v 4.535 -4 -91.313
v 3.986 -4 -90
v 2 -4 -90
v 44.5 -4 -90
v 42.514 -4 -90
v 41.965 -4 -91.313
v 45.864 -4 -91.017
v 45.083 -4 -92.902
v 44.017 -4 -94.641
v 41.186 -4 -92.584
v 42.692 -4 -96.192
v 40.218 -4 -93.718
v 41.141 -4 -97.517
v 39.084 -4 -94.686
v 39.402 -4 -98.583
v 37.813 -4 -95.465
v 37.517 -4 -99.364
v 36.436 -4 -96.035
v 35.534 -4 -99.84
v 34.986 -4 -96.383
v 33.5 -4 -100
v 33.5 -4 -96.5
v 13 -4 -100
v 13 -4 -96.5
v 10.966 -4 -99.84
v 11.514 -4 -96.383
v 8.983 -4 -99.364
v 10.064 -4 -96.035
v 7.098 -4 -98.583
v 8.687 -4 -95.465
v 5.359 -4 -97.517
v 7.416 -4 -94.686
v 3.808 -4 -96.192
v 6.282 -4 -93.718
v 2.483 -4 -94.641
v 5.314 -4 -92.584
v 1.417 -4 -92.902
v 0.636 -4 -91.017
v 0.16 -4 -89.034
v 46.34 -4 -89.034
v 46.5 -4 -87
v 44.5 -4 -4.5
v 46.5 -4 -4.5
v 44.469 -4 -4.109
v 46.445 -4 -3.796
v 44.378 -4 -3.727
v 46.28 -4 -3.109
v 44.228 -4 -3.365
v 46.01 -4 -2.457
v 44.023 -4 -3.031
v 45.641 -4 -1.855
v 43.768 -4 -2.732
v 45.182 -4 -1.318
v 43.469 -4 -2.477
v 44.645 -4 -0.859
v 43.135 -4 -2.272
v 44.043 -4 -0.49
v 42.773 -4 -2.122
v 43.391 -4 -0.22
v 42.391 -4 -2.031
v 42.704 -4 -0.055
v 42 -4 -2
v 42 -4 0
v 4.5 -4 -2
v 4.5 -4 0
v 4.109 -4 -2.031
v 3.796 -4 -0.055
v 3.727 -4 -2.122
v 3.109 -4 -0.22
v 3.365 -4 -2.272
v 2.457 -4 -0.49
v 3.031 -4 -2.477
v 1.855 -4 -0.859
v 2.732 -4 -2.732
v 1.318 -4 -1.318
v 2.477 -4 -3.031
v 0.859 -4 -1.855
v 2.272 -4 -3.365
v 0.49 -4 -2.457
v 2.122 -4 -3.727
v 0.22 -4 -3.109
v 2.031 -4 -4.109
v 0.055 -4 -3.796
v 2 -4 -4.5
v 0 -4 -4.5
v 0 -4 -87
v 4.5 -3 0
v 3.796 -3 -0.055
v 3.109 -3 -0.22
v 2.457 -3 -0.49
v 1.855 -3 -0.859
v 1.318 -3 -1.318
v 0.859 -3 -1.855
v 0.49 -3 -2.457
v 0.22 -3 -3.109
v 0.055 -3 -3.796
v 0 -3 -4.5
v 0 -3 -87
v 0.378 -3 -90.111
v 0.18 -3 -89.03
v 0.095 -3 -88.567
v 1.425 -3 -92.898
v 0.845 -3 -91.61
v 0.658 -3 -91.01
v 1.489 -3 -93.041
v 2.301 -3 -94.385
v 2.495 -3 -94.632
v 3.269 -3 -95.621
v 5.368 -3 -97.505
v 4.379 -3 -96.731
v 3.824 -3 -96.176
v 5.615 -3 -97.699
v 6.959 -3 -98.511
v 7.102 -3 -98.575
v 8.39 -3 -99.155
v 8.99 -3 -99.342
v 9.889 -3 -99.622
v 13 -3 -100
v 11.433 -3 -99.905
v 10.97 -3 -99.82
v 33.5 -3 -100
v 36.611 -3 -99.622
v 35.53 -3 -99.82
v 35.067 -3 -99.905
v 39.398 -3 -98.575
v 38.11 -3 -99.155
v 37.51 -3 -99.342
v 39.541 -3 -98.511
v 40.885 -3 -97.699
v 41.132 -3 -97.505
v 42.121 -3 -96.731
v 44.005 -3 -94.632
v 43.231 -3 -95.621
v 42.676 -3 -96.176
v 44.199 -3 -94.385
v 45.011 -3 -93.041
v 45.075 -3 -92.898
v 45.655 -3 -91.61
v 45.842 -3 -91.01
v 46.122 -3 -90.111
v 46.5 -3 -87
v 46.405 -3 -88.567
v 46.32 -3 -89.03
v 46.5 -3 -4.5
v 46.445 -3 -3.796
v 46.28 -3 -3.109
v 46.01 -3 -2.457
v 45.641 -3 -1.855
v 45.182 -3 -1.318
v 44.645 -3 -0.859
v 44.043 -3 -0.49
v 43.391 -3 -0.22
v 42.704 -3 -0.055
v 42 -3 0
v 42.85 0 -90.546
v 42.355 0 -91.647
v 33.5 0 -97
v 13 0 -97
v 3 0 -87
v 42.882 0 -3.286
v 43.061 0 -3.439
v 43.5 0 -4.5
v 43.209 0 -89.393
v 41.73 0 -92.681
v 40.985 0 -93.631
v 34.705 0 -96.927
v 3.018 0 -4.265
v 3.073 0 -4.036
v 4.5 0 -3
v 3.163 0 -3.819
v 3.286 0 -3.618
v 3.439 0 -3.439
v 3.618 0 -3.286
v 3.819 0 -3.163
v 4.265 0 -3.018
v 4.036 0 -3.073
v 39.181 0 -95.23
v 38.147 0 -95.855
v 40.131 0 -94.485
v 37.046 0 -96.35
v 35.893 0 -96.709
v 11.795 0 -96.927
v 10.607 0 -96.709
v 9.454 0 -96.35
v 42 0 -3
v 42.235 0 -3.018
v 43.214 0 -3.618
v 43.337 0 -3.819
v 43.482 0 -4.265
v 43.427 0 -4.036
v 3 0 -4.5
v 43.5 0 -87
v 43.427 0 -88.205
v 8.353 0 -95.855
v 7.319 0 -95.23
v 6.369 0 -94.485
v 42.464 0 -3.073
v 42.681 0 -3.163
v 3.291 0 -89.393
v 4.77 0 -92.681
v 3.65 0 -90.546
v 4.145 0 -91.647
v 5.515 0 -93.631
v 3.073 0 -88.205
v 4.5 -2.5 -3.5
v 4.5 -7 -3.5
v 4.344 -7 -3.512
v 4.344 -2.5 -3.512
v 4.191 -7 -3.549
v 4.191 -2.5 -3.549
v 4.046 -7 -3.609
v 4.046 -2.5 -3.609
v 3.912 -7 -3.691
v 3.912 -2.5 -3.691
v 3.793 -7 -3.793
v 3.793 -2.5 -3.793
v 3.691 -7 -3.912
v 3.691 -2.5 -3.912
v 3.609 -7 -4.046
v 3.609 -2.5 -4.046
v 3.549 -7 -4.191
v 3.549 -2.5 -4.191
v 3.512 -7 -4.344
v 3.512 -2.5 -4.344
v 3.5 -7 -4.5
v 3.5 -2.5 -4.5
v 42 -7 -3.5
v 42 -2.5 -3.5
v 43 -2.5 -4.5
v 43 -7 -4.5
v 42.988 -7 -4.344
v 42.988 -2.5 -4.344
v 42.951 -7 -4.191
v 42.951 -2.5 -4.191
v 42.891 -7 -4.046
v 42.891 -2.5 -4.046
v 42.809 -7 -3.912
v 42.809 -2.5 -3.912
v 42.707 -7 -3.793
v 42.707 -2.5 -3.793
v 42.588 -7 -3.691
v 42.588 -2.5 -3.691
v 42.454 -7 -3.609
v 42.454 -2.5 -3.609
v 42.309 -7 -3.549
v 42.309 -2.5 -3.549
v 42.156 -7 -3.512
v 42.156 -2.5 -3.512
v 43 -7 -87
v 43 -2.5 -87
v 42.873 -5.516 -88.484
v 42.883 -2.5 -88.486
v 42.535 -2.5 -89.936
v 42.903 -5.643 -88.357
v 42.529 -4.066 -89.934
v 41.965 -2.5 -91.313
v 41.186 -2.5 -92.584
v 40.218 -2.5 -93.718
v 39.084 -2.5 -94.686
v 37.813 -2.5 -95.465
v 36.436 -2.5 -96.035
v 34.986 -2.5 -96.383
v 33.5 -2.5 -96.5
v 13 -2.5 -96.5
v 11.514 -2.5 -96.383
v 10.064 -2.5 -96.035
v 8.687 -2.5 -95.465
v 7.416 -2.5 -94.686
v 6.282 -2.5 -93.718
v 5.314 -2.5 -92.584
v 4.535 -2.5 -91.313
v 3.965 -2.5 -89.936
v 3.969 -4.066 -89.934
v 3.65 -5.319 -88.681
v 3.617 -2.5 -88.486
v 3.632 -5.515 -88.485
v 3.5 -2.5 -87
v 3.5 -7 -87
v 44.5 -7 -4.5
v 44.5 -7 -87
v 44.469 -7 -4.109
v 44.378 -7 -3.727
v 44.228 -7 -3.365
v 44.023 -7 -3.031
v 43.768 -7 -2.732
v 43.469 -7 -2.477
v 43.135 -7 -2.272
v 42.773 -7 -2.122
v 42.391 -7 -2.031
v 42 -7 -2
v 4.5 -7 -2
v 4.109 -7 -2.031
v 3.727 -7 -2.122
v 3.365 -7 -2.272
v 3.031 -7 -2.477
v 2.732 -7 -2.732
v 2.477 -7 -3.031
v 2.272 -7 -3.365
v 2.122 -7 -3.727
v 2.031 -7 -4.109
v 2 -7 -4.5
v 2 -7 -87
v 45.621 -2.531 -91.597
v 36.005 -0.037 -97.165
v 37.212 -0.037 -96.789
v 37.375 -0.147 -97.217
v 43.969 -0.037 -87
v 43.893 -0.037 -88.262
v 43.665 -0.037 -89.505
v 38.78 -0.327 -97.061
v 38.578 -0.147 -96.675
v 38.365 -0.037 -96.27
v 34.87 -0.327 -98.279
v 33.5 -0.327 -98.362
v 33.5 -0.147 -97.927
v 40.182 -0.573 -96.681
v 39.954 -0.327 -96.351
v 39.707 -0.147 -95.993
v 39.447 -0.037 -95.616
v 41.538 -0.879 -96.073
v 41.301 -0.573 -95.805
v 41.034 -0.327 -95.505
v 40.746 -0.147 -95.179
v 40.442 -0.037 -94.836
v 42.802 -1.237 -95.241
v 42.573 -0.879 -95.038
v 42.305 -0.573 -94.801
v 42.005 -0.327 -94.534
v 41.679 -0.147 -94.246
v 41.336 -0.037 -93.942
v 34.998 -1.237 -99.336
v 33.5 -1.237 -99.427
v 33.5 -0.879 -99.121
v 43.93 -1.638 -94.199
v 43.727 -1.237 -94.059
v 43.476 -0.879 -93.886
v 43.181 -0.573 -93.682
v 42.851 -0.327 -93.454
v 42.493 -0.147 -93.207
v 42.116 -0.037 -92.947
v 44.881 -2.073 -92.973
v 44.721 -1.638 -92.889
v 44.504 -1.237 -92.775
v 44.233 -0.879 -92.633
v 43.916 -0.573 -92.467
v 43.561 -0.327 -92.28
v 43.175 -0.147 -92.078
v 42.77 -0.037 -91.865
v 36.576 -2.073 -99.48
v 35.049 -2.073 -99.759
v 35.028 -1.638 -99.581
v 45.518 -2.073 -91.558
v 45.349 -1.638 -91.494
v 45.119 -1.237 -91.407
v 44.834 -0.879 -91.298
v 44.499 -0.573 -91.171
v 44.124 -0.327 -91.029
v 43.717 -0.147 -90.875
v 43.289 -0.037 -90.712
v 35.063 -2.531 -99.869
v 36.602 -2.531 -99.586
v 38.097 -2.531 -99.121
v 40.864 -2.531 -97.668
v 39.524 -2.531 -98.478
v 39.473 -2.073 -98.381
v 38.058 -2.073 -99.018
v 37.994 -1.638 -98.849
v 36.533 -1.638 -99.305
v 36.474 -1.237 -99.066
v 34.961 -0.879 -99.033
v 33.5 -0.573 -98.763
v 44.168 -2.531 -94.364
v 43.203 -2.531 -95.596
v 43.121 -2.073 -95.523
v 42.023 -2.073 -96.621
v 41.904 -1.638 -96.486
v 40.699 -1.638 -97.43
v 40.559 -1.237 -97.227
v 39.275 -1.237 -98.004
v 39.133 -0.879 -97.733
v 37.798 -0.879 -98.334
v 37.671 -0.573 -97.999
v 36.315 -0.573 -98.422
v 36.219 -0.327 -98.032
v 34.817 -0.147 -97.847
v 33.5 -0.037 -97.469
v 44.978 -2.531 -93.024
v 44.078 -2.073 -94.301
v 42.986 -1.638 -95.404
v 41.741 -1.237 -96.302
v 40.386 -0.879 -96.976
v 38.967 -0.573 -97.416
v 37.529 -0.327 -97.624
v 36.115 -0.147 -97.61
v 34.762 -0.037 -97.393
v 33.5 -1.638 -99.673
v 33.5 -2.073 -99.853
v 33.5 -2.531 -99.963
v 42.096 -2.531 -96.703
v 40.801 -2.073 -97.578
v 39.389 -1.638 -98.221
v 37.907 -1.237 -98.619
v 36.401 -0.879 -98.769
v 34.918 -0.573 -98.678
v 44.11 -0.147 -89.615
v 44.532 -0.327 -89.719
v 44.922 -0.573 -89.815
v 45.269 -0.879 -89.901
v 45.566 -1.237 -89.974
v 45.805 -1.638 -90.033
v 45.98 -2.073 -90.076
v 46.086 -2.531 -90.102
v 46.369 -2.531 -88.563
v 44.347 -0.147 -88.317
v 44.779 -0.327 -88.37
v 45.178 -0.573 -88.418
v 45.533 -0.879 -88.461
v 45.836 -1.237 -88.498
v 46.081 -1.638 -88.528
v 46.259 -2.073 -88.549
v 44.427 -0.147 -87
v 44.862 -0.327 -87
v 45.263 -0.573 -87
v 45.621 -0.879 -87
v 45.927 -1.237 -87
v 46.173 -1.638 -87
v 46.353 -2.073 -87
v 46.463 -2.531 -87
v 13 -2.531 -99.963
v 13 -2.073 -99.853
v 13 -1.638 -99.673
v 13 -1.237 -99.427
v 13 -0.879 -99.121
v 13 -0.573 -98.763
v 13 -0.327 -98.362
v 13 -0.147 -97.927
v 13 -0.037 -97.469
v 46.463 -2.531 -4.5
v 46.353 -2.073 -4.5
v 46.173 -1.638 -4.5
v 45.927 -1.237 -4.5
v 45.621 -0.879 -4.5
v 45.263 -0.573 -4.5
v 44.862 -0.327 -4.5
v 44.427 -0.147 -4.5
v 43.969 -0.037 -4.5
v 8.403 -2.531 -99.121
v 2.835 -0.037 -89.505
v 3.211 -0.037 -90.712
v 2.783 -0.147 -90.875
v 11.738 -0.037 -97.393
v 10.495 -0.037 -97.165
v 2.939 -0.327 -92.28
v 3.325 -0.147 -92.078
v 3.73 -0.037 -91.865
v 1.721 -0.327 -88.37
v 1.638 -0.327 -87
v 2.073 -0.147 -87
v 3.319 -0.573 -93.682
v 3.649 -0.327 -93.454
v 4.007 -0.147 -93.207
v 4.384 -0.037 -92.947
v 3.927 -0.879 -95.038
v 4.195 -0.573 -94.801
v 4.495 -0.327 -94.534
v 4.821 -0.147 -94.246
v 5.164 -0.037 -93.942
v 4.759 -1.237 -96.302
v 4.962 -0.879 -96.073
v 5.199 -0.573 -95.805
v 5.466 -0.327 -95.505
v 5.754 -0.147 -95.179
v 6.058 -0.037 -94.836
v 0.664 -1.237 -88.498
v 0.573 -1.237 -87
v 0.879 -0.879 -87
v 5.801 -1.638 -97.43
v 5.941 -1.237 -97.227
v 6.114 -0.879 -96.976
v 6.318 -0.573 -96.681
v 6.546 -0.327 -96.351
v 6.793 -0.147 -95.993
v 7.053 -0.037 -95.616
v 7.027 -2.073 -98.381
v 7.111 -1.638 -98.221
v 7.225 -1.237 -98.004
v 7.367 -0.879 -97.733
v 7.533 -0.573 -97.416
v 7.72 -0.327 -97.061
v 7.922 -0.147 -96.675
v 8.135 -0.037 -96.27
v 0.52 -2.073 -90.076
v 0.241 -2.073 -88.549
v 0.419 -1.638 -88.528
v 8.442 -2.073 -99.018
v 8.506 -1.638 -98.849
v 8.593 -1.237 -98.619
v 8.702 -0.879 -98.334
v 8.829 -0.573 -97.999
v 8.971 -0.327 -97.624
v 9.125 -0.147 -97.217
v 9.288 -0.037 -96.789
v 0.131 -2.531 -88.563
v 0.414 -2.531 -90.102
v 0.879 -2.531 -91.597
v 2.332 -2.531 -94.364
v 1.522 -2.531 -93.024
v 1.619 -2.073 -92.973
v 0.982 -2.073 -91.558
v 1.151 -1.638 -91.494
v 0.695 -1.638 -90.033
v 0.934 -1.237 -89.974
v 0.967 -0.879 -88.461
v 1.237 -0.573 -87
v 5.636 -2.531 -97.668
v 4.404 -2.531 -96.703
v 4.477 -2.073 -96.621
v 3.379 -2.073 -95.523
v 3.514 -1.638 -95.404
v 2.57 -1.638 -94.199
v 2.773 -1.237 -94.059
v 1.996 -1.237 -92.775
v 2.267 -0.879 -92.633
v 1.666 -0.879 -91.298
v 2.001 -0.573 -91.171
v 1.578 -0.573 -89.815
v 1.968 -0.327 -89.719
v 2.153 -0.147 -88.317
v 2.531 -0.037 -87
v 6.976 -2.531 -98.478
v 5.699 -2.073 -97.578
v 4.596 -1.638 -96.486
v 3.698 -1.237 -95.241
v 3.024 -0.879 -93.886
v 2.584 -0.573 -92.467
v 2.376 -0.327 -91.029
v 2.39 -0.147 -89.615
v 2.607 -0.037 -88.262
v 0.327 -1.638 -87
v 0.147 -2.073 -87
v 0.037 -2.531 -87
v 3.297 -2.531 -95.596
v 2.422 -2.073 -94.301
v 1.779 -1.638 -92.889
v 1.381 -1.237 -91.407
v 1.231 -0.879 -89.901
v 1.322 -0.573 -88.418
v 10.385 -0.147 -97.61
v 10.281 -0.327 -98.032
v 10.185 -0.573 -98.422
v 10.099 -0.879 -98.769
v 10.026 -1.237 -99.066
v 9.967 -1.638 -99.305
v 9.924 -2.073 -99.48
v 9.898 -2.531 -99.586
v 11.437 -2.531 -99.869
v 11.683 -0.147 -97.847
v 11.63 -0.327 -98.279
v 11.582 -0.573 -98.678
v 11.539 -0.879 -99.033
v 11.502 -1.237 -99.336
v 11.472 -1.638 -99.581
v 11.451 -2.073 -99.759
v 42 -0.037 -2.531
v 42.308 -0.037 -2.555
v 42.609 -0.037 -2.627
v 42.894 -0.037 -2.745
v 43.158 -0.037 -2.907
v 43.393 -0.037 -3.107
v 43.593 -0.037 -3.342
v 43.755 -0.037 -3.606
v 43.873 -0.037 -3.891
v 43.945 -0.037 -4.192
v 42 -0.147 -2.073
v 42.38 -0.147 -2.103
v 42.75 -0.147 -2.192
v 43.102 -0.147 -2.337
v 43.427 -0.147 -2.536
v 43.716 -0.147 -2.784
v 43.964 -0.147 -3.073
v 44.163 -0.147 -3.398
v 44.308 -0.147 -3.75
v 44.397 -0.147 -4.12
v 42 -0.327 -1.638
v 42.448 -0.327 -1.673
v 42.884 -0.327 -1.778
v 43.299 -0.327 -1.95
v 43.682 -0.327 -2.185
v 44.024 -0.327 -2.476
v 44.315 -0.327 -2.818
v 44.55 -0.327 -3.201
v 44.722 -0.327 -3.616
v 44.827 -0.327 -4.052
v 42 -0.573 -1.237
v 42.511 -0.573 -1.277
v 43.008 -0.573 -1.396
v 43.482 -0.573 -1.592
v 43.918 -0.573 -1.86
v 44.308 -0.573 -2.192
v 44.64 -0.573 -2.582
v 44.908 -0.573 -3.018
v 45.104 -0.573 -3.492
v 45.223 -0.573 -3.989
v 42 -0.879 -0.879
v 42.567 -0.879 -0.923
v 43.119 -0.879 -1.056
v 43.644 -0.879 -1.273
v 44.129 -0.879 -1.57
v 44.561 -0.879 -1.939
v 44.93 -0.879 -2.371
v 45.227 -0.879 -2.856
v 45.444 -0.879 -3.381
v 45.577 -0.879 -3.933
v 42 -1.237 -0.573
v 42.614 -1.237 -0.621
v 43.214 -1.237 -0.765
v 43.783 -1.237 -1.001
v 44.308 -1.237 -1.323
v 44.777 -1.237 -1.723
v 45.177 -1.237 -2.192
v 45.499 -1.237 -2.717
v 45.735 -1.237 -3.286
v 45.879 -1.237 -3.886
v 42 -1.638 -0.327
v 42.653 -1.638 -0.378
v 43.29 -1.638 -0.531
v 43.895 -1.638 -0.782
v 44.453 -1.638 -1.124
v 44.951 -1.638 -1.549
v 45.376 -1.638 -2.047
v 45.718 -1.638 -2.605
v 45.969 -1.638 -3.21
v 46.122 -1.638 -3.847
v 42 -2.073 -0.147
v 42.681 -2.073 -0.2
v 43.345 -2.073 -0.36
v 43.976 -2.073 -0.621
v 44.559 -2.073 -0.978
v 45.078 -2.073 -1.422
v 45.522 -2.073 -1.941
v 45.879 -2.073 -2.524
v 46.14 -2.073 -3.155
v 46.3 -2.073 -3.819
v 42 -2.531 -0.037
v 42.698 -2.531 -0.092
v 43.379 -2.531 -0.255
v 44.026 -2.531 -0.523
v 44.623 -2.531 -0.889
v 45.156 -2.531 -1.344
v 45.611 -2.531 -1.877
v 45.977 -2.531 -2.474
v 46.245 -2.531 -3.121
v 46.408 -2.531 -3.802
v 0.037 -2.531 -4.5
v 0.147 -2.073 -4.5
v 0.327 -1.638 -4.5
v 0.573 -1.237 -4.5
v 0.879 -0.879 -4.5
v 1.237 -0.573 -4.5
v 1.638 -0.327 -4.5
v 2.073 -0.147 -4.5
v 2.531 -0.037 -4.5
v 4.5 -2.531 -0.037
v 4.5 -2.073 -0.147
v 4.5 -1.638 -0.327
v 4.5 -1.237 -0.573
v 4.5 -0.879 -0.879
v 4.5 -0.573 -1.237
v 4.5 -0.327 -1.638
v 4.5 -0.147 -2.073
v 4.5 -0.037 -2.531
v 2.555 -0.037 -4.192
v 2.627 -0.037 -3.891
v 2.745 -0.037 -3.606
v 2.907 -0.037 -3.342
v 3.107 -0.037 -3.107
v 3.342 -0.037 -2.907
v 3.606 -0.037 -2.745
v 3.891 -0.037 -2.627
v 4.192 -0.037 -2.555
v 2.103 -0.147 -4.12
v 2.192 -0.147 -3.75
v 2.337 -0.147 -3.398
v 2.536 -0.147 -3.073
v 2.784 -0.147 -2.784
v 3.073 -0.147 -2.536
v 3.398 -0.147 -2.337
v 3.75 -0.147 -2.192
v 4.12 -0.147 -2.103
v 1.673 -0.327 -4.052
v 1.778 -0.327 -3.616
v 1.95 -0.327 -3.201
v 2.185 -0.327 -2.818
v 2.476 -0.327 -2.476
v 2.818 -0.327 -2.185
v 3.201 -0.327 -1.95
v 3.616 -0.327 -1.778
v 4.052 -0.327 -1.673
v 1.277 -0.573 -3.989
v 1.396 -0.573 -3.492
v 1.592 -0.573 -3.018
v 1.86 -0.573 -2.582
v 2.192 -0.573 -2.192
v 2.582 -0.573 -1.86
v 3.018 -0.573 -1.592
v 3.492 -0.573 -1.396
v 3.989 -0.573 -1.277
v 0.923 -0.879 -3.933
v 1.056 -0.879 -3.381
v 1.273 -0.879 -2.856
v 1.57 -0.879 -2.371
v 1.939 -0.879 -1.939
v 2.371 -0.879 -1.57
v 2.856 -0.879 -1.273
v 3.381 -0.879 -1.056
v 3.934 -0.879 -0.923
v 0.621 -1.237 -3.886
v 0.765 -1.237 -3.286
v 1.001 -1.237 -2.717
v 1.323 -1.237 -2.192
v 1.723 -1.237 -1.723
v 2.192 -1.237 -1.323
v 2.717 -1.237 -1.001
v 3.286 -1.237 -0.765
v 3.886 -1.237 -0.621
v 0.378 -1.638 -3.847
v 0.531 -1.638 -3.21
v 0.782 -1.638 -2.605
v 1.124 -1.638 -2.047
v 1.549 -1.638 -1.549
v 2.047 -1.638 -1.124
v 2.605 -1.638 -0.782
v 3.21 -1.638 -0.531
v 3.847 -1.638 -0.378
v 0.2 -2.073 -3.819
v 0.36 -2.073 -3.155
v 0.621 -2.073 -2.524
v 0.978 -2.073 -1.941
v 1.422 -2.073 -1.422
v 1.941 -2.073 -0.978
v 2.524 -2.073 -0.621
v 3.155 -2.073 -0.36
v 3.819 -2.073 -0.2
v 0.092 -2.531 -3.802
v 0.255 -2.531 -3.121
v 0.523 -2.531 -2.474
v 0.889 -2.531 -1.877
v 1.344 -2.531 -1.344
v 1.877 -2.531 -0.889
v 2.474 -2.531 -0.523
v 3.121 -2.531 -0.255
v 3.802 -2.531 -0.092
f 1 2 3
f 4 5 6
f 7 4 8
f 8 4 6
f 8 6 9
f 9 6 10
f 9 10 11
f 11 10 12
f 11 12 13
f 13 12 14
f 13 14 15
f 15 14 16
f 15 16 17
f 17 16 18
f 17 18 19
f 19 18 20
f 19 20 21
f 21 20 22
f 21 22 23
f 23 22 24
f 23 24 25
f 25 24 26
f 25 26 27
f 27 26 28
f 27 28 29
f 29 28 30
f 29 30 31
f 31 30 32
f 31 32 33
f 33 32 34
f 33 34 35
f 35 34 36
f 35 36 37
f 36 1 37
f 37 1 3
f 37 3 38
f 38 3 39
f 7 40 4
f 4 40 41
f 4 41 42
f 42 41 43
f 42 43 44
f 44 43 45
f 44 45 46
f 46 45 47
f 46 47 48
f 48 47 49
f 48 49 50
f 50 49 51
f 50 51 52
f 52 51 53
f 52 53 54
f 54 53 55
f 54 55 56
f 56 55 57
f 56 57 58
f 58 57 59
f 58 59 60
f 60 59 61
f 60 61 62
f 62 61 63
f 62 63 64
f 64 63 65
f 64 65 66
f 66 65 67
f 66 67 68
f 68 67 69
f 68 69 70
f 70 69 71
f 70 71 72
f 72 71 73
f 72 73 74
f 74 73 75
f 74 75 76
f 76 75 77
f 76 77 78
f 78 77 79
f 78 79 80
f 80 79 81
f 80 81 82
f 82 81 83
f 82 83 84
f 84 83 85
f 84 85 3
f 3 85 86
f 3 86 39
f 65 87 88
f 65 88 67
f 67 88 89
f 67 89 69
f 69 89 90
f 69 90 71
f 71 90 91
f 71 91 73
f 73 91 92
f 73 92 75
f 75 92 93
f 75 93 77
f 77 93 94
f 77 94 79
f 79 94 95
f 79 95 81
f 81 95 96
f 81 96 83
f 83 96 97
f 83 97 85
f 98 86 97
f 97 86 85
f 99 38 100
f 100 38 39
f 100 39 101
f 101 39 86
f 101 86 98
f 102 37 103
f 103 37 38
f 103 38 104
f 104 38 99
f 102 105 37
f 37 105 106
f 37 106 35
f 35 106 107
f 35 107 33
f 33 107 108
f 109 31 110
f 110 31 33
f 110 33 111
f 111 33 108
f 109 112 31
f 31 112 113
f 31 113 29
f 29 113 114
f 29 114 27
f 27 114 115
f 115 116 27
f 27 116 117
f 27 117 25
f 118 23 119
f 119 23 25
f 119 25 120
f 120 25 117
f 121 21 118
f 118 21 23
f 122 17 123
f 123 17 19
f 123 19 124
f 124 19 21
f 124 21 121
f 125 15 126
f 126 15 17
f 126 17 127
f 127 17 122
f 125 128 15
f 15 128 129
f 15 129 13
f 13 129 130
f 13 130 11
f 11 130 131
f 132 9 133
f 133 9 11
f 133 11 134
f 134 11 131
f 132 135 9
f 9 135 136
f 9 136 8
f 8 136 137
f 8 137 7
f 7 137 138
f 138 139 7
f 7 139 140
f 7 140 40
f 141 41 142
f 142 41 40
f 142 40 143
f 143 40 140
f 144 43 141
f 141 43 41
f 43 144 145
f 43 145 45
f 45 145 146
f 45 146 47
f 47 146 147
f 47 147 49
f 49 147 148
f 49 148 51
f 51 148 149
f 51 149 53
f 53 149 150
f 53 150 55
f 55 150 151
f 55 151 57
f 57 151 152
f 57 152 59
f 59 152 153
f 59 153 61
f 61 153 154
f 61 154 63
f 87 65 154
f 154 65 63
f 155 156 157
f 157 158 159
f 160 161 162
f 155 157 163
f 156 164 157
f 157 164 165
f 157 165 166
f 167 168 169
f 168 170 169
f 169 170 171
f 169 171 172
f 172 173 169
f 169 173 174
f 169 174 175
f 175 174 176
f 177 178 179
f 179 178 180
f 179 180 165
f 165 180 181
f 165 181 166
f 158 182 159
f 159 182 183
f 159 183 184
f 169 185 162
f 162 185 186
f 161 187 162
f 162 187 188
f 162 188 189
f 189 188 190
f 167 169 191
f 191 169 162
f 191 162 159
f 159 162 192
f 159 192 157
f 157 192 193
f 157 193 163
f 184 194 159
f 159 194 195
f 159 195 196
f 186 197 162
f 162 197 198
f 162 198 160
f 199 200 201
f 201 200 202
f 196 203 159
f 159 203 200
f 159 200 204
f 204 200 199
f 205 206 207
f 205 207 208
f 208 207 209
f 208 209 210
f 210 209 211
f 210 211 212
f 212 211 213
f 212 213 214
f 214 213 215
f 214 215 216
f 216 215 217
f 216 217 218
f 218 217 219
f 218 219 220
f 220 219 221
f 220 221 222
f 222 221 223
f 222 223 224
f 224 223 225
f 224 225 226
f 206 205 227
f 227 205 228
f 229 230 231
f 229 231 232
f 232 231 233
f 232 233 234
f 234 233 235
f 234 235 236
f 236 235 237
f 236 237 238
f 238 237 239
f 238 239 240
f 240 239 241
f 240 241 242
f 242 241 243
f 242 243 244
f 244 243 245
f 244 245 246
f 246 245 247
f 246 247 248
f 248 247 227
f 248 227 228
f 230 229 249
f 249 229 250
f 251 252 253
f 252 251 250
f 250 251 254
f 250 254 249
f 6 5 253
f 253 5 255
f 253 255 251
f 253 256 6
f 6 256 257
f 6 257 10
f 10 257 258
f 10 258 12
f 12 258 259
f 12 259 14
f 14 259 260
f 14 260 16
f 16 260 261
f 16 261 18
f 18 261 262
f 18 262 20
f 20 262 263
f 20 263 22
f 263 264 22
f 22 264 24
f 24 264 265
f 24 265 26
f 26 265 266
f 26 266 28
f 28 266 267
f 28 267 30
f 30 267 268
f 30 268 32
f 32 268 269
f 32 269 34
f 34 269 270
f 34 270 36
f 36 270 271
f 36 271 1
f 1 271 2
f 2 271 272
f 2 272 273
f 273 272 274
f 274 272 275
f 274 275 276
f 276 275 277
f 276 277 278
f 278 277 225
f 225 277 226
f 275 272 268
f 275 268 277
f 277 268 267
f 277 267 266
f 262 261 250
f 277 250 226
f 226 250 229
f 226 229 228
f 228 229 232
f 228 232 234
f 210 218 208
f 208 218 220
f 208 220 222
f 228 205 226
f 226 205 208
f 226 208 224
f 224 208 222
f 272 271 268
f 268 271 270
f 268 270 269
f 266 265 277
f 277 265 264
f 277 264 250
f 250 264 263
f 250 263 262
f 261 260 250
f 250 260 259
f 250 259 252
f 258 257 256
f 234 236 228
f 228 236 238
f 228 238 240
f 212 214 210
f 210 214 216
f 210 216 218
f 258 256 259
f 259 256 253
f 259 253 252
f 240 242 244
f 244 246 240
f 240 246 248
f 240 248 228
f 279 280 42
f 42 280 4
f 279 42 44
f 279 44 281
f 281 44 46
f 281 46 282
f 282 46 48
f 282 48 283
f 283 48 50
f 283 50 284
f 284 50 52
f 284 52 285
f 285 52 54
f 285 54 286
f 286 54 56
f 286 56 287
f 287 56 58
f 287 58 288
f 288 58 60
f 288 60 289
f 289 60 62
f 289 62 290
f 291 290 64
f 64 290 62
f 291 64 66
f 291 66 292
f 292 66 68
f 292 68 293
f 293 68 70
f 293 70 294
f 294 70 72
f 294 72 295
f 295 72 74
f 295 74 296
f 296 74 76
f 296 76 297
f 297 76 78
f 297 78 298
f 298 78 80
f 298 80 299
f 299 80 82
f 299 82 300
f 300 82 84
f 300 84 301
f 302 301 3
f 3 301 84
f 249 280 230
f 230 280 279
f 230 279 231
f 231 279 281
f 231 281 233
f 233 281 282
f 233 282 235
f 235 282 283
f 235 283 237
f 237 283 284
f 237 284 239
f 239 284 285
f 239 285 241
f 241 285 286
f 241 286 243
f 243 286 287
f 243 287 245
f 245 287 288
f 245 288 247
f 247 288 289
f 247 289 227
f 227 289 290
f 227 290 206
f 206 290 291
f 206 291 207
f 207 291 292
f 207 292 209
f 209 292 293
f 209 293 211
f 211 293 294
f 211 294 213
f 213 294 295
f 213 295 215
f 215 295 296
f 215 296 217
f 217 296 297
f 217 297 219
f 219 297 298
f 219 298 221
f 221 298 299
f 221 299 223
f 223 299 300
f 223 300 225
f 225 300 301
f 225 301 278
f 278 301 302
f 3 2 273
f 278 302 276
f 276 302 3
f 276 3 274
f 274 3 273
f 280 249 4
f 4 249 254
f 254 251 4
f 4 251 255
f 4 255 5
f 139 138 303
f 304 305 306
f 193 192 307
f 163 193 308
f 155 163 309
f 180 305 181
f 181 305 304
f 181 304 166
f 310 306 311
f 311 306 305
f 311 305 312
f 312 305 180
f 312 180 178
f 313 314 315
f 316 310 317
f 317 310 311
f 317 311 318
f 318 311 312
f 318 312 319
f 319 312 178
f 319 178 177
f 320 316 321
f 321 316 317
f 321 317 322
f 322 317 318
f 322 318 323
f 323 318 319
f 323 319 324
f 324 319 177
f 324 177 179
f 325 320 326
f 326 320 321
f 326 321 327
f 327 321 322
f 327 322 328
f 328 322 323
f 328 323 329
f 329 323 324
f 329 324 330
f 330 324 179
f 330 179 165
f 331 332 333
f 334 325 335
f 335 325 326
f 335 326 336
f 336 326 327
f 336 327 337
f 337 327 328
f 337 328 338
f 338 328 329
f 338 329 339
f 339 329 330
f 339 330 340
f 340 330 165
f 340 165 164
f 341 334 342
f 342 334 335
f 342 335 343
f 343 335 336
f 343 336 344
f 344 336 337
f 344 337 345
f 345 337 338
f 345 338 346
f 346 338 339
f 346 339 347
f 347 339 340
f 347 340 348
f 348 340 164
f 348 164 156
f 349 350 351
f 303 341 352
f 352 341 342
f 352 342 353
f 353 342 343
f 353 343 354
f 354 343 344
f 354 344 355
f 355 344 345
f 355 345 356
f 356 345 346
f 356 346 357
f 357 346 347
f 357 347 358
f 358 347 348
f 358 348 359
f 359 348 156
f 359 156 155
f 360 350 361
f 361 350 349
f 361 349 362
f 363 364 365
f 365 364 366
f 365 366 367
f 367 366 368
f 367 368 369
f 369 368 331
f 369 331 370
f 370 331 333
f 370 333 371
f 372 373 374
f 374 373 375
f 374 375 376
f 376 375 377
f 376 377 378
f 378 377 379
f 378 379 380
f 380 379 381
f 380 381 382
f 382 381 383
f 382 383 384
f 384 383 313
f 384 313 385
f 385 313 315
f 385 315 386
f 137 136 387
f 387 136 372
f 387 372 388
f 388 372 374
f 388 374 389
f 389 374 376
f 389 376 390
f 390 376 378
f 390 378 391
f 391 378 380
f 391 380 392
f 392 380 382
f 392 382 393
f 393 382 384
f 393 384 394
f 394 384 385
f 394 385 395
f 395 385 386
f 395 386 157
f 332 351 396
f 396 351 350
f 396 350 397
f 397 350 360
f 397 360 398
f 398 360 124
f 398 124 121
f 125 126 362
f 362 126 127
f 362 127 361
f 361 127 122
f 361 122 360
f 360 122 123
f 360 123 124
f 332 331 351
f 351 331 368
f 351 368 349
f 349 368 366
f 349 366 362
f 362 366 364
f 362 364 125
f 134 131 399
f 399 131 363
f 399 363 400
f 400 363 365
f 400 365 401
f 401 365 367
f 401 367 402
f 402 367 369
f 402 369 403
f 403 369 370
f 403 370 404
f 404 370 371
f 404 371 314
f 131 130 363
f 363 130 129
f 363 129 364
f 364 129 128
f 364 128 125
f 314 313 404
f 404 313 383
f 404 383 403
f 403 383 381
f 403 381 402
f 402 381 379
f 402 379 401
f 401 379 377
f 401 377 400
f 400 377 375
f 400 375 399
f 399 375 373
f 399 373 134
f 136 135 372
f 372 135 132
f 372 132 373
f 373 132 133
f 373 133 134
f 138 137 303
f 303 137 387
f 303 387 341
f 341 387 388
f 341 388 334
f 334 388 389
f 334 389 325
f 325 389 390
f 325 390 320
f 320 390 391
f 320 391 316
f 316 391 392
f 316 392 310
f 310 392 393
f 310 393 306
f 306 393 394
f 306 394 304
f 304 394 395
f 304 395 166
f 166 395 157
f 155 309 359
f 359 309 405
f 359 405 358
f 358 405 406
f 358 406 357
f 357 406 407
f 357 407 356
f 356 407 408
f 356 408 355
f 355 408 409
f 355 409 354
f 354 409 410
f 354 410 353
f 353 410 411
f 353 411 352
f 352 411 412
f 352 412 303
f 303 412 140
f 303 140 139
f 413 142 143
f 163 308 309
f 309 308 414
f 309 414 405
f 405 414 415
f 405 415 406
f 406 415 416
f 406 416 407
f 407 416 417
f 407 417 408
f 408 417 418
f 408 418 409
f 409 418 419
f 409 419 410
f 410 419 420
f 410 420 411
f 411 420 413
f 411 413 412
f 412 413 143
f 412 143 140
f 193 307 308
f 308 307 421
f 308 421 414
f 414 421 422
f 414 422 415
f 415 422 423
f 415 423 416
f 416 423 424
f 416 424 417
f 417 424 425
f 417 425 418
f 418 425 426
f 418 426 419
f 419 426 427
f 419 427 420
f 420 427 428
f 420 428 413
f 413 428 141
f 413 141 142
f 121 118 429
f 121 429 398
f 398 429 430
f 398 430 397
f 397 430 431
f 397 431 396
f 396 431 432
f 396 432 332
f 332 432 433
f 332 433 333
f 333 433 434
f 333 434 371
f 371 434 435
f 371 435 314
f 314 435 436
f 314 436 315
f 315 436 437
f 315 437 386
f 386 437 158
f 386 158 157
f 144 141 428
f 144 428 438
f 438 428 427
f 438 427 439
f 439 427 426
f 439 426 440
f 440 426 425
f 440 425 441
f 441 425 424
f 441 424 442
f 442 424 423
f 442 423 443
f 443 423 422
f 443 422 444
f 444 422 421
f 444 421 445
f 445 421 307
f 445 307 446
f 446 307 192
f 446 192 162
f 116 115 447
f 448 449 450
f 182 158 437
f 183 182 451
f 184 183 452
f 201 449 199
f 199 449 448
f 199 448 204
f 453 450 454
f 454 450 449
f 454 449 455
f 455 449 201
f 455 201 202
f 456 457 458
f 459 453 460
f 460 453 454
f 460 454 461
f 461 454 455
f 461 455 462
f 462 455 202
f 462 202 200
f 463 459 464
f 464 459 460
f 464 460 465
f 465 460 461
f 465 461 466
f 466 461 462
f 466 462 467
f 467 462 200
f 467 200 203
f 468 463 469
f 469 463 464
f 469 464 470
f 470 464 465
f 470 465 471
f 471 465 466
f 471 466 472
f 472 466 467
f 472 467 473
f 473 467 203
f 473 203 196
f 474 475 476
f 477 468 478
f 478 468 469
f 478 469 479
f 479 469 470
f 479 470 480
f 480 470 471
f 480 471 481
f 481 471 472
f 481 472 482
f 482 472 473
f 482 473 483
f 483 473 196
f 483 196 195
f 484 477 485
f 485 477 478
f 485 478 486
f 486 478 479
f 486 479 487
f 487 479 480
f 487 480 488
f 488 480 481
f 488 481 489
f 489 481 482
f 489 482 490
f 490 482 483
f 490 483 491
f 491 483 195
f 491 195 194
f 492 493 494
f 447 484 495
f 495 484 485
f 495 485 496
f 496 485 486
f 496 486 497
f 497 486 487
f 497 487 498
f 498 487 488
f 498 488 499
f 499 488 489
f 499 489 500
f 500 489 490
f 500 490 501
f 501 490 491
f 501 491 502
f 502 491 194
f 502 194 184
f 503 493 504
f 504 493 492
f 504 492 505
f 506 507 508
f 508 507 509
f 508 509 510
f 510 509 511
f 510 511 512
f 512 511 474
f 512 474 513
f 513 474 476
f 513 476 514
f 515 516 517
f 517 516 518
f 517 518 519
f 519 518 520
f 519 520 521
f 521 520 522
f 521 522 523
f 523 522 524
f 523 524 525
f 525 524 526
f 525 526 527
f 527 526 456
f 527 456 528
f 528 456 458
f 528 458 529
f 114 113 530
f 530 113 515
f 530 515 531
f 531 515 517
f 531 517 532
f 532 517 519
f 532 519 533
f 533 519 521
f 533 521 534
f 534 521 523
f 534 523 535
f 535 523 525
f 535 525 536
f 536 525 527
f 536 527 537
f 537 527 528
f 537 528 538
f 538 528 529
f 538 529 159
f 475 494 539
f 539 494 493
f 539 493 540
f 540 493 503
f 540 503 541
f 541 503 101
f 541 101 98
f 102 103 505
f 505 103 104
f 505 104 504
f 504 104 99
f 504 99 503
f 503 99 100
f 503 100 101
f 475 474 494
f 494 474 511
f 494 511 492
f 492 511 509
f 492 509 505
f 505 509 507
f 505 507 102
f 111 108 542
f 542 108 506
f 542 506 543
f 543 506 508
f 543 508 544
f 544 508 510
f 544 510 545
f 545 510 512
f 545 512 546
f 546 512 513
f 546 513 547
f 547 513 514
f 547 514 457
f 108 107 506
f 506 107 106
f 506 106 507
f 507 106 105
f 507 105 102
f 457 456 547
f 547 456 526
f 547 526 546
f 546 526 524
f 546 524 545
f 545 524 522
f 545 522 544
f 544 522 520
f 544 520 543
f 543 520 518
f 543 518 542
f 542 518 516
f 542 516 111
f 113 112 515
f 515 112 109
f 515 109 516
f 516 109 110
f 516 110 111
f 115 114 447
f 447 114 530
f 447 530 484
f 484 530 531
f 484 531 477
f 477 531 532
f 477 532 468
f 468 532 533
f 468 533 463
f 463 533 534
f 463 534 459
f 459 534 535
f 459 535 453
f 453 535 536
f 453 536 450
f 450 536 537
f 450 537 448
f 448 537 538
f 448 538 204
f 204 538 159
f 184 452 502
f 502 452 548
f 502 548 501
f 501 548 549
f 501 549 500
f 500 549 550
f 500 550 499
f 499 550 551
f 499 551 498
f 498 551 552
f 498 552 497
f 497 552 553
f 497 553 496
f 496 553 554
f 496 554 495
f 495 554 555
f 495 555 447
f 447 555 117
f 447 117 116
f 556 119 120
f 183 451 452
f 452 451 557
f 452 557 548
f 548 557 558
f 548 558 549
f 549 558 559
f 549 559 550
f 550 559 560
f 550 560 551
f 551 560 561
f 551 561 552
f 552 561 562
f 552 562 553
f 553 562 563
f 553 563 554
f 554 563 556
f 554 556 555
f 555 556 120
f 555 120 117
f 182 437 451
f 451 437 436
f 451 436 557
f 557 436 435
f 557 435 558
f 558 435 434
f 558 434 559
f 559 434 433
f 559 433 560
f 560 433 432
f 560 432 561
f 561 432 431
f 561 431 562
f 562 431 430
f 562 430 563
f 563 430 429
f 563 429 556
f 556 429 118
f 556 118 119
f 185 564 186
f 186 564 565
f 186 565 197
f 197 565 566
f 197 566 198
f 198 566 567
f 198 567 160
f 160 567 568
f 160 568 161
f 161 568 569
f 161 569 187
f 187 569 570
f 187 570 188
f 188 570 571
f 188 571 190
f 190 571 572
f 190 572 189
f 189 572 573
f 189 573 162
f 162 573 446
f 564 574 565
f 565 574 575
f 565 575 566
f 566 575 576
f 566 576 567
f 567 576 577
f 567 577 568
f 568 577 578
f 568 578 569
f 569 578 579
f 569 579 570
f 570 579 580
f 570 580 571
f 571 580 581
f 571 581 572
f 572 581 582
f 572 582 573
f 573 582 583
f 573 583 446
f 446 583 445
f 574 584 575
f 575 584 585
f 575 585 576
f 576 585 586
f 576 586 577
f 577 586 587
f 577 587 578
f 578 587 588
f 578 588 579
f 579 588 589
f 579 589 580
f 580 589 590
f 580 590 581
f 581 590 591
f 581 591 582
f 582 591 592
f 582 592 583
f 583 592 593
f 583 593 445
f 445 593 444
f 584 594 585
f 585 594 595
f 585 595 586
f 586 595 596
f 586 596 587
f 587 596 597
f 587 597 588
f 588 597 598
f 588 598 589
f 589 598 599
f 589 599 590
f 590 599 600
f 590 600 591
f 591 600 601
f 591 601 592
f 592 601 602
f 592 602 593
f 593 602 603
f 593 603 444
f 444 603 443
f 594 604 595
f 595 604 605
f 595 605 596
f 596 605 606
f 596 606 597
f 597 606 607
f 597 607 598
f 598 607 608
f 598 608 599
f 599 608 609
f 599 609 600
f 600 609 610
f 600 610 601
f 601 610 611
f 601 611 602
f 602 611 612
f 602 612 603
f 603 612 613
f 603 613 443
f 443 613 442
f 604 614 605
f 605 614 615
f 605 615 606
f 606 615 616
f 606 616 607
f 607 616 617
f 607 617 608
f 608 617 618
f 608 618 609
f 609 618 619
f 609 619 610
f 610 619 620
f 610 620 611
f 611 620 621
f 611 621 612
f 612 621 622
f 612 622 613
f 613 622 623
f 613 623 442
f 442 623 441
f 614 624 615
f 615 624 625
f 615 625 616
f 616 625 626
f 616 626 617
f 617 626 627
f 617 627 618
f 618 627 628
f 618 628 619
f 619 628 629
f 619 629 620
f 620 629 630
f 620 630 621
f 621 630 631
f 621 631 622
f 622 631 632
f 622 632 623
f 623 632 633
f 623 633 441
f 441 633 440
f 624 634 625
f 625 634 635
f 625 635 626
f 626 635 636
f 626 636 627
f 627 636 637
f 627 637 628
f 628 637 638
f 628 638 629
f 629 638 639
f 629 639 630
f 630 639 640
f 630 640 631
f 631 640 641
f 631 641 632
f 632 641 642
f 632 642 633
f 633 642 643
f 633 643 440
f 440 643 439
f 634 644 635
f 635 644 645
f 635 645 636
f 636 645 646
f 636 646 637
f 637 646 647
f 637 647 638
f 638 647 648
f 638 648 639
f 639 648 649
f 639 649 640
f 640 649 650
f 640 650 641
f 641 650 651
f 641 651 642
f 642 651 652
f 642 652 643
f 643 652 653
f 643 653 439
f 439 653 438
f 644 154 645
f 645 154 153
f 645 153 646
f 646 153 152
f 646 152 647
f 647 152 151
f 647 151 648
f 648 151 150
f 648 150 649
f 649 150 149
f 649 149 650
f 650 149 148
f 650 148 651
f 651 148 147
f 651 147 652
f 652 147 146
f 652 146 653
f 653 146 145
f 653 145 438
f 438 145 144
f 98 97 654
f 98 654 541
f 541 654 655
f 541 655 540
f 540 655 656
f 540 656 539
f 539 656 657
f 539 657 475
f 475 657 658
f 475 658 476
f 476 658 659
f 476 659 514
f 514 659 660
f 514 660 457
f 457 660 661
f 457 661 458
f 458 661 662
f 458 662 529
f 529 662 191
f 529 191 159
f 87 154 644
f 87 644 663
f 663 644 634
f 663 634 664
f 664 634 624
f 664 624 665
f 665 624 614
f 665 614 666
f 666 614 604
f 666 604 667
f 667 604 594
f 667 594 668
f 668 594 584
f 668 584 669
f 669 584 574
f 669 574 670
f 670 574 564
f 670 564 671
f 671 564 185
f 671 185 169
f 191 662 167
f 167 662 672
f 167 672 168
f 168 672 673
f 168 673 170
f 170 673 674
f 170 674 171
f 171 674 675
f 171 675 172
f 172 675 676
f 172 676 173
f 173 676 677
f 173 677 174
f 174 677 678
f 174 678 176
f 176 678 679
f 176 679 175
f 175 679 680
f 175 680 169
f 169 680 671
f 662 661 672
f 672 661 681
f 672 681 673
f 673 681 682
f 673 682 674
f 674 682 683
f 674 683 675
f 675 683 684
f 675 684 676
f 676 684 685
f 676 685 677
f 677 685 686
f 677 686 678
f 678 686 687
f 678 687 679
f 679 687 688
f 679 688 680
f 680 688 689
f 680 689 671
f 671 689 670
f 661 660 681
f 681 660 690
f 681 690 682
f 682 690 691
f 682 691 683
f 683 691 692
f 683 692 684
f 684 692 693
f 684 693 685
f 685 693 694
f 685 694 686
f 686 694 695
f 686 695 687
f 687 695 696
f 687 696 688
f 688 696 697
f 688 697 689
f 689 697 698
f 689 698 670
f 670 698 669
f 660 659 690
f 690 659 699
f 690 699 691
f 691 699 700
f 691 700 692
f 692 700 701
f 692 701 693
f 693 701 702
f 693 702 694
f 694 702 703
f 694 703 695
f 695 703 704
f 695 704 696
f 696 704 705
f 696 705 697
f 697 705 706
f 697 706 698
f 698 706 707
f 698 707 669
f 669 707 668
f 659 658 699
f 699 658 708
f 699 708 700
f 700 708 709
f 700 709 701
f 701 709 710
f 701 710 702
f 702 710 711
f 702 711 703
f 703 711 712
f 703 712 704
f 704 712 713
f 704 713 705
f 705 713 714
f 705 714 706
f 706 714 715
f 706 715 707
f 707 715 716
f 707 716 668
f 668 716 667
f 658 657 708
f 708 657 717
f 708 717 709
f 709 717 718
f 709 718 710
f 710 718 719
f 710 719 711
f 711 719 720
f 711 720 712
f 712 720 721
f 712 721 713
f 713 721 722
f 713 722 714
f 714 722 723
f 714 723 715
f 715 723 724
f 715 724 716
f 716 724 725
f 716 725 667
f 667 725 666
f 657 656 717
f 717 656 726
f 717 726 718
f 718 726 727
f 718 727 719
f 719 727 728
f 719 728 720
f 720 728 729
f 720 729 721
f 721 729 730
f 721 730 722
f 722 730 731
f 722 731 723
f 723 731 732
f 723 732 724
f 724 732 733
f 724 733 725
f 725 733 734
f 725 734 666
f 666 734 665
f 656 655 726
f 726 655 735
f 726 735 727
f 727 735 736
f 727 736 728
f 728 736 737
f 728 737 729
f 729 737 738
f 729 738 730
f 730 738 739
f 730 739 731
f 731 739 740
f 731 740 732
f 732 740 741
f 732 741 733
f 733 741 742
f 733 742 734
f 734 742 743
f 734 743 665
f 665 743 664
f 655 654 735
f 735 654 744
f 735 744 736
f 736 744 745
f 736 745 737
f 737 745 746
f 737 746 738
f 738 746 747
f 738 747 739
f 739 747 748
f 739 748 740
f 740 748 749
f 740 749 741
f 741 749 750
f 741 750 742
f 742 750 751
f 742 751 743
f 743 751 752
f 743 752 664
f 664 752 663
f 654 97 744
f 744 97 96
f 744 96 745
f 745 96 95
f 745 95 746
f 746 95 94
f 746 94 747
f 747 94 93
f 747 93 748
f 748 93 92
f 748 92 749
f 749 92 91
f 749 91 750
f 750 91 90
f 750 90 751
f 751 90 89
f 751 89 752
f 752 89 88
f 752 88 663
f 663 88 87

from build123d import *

# Parameters (mm, degrees)
EXTRUDE_1_DEPTH     = 4
CUT_EXTRUDE_1_DEPTH = 1.5
EXTRUDE_START       = 3
EXTRUDE_2_DEPTH     = 3
CHAMFER_1_SIZE      = 3
FILLET_1_R          = 3


with BuildPart() as part:
    # Эскиз1 → Бобышка-Вытянуть1 (new body)
    with BuildSketch(Plane(origin=(0, 0, 0), x_dir=(1, 0, 0), z_dir=(0, 1, 0))):
        with BuildLine():
            Line((4.5, 0), (42, 0))
            ThreePointArc((42, 0), (45.181980515, 1.318019485), (46.5, 4.5))
            Line((46.5, 4.5), (46.5, 87))
            ThreePointArc((46.5, 87), (42.692388155, 96.192388155), (33.5, 100))
            Line((33.5, 100), (13, 100))
            ThreePointArc((13, 100), (3.807611845, 96.192388155), (0, 87))
            Line((0, 87), (0, 4.5))
            ThreePointArc((0, 4.5), (1.318019485, 1.318019485), (4.5, 0))
        make_face()
    extrude(amount=-EXTRUDE_1_DEPTH)

    # Эскиз2 → Вырез-Вытянуть1 (cut)
    with BuildSketch(Plane.XZ.offset(4)):
        with BuildLine():
            Line((3.5, -4.5), (3.5, -87))
            ThreePointArc((3.5, -87), (6.282485579, -93.717514421), (13, -96.5))
            Line((13, -96.5), (33.5, -96.5))
            ThreePointArc((33.5, -96.5), (40.217514421, -93.717514421), (43, -87))
            Line((43, -87), (43, -4.5))
            ThreePointArc((43, -4.5), (42.707106781, -3.792893219), (42, -3.5))
            Line((42, -3.5), (4.5, -3.5))
            ThreePointArc((4.5, -3.5), (3.792893219, -3.792893219), (3.5, -4.5))
        make_face()
    extrude(amount=-CUT_EXTRUDE_1_DEPTH, mode=Mode.SUBTRACT)

    # Эскиз3 → Бобышка-Вытянуть2 (add)
    with BuildSketch(Plane(origin=(0, -4, 0), x_dir=(-1, 0, 0), z_dir=(0, -1, 0)).offset(EXTRUDE_START)):
        with BuildLine():
            Line((-2, 87), (-2, 4.5))
            ThreePointArc((-2, 4.5), (-2.732233047, 2.732233047), (-4.5, 2))
            Line((-4.5, 2), (-42, 2))
            ThreePointArc((-42, 2), (-43.767766953, 2.732233047), (-44.5, 4.5))
            Line((-44.5, 4.5), (-44.5, 87))
            Line((-44.5, 87), (-43, 87))
            Line((-43, 87), (-43, 4.5))
            ThreePointArc((-43, 4.5), (-42.707106781, 3.792893219), (-42, 3.5))
            Line((-42, 3.5), (-4.5, 3.5))
            ThreePointArc((-4.5, 3.5), (-3.792893219, 3.792893219), (-3.5, 4.5))
            Line((-3.5, 4.5), (-3.5, 87))
            Line((-3.5, 87), (-2, 87))
        make_face()
    extrude(amount=-EXTRUDE_2_DEPTH)

    # Фаска1
    # the kernel refuses this chamfer: 3 mm, written as the material it adds along each edge
    with BuildSketch(Plane(origin=(11.215048964, -4, -87), x_dir=(0, 0.027495876610586334, -0.9996219169112968), z_dir=(-1, 0, 0))) as chamfer_1_piece_1_section:
        Polygon((CHAMFER_1_SIZE * 0.999621916911, CHAMFER_1_SIZE * 0.0274958766106), (-CHAMFER_1_SIZE * 0.0274958766106, CHAMFER_1_SIZE * 0.999621916911), (0, 0), align=None)
    chamfer_1_piece_1 = extrude(amount=9.215048964, mode=Mode.PRIVATE)
    chamfer_1_piece_1 = chamfer_1_piece_1 - Plane(origin=(13, -4.5189099, -87), x_dir=(-1, 0, 0), z_dir=(0, -1, 0)) * Cylinder(9.5, 31, mode=Mode.PRIVATE)
    chamfer_1_piece_1 = split(chamfer_1_piece_1, bisect_by=Plane(origin=(3.605353411, -7, -88.883676774), z_dir=(0, 1, 0)), keep=Keep.TOP, mode=Mode.PRIVATE)
    add(chamfer_1_piece_1)
    with BuildSketch(Plane(origin=(44.5, -4, -87), x_dir=(0, 0.027495876610586334, -0.9996219169112968), z_dir=(-1, 0, 0))) as chamfer_1_piece_2_section:
        Polygon((CHAMFER_1_SIZE * 0.999621916911, CHAMFER_1_SIZE * 0.0274958766106), (-CHAMFER_1_SIZE * 0.0274958766106, CHAMFER_1_SIZE * 0.999621916911), (0, 0), align=None)
    chamfer_1_piece_2 = extrude(amount=9.215048964, mode=Mode.PRIVATE)
    chamfer_1_piece_2 = chamfer_1_piece_2 - Plane(origin=(33.5, -4.985903001, -87), x_dir=(0, 0, -1), z_dir=(0, -1, 0)) * Cylinder(9.5, 31, mode=Mode.PRIVATE)
    chamfer_1_piece_2 = split(chamfer_1_piece_2, bisect_by=Plane(origin=(43.75, -7, -87.991212463), z_dir=(0, 1, 0)), keep=Keep.TOP, mode=Mode.PRIVATE)
    add(chamfer_1_piece_2)

    # Скругление1
    fillet_1_edges = [part.edges().sort_by_distance(p)[0] for p in [
        (23.25, 0, 0),
        (1.318019485, 0, -1.318019485),
        (0, 0, -45.75),
        (3.807611845, 0, -96.192388155),
        (23.25, 0, -100),
        (42.692388155, 0, -96.192388155),
        (46.5, 0, -45.75),
        (45.181980515, 0, -1.318019485),
    ]]
    fillet(fillet_1_edges, radius=FILLET_1_R)


solid = part.part
